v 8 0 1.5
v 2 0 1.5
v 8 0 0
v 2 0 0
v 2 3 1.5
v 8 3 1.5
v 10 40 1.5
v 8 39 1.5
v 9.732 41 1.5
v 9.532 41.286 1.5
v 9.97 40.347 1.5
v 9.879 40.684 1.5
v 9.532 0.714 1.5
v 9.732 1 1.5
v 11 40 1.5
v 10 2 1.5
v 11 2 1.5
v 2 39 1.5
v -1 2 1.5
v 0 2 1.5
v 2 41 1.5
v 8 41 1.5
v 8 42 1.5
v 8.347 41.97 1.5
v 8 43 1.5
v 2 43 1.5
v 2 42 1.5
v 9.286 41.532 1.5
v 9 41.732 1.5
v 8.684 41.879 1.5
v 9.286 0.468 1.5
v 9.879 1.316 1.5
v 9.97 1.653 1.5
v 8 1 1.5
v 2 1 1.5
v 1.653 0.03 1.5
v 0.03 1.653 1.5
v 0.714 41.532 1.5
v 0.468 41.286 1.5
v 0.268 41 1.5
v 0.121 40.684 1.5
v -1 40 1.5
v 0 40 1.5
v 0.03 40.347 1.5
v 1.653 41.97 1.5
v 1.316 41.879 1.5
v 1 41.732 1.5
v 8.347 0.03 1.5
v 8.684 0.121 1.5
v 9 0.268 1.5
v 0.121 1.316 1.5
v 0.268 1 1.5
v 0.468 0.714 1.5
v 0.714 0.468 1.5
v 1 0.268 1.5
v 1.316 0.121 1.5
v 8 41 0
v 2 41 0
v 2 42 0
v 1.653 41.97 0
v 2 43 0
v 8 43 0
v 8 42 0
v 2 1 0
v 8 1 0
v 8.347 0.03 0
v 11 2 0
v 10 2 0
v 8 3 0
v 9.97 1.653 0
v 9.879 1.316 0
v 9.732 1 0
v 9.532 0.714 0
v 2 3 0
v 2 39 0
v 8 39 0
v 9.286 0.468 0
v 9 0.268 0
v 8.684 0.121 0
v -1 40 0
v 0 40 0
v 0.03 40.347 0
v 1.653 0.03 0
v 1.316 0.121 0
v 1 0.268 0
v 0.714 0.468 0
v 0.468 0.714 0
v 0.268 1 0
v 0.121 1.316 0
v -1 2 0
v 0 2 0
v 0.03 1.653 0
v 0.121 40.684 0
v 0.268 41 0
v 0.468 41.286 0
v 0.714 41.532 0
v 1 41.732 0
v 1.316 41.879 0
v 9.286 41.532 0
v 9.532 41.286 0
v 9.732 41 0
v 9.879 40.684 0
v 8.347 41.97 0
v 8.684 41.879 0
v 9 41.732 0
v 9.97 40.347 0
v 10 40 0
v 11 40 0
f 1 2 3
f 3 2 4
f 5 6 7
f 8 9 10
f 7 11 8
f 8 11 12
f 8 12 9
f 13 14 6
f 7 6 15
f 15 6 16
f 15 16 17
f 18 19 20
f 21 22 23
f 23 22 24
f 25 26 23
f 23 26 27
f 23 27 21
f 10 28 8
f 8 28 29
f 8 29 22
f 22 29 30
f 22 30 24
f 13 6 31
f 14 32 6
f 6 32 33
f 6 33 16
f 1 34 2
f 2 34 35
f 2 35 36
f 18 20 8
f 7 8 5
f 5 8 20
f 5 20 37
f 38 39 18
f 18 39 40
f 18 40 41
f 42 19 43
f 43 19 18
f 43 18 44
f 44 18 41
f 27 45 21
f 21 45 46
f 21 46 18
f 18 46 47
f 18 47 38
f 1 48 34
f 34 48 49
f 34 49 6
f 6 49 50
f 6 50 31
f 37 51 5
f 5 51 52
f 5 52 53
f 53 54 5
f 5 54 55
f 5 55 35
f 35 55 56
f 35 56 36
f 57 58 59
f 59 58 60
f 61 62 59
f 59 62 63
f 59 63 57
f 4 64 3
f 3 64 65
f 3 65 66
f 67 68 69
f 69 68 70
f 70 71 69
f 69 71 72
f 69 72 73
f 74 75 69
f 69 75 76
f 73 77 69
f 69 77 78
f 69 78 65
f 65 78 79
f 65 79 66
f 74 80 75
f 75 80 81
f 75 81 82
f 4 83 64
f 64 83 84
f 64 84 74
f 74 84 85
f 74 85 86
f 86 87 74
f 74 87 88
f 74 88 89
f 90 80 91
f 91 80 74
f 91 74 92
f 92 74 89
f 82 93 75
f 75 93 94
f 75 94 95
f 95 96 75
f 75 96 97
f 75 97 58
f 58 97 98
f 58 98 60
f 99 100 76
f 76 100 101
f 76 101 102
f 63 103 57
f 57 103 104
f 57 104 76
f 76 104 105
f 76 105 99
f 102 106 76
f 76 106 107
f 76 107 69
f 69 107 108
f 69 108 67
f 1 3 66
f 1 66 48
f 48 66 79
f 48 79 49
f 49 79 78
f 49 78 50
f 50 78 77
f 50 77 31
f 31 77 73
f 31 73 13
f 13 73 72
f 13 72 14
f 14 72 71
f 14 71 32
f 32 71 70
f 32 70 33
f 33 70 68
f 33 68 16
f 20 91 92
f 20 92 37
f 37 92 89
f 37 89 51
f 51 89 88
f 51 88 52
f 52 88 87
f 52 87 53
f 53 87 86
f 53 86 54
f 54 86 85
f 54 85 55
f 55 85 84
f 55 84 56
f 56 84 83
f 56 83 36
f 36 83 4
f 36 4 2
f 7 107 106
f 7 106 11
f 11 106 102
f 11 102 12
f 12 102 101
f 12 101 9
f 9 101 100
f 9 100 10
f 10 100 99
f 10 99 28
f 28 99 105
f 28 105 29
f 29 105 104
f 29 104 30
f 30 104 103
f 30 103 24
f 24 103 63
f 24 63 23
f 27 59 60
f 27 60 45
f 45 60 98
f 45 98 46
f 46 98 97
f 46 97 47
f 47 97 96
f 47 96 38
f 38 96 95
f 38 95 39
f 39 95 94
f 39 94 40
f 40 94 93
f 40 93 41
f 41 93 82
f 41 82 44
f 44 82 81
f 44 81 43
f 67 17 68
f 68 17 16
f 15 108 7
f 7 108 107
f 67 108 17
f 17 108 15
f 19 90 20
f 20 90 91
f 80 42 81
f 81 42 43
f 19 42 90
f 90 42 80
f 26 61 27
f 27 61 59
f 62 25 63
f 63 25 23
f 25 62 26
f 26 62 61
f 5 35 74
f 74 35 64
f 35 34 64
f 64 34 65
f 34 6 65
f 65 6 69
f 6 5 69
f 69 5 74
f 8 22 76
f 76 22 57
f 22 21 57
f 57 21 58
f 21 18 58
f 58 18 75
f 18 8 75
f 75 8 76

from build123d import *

# Parameters (mm, degrees)
SZKIC1_W                    = 10
SZKIC1_H                    = 42
DODANIE_WYCI_GNI_CIE1_DEPTH = 1.5
ZAOKR_GLENIE1_R             = 2
SZKIC2_W                    = 1.5
SZKIC2_H                    = 38
DODANIE_WYCI_GNI_CIE2_DEPTH = 1
SZKIC3_W                    = 1.5
SZKIC3_H                    = 38
DODANIE_WYCI_GNI_CIE3_DEPTH = 1
SZKIC4_W                    = 6
SZKIC4_H                    = 1.5
DODANIE_WYCI_GNI_CIE4_DEPTH = 1
SZKIC5_W                    = 6
SZKIC5_H                    = 2
WYTNIJ_WYCI_GNI_CIE2_DEPTH  = 2.5


with BuildPart() as part:
    # Szkic1 → Dodanie-wyciągnięcie1 (new body)
    with BuildSketch(Plane.XY):
        with Locations((5, 21)):
            Rectangle(SZKIC1_W, SZKIC1_H)
    extrude(amount=DODANIE_WYCI_GNI_CIE1_DEPTH)

    # Zaokrąglenie1
    zaokr_glenie1_edges = [part.edges().sort_by_distance(p)[0] for p in [
        (0, 42, 0.75),
        (10, 42, 0.75),
        (10, 0, 0.75),
        (0, 0, 0.75),
    ]]
    fillet(zaokr_glenie1_edges, radius=ZAOKR_GLENIE1_R)

    # Szkic2 → Dodanie-wyciągnięcie2 (add)
    with BuildSketch(Plane(origin=(10, 0, 0), x_dir=(0, 0, -1), z_dir=(1, 0, 0))):
        with Locations((-0.75, 21)):
            Rectangle(SZKIC2_W, SZKIC2_H)
    extrude(amount=DODANIE_WYCI_GNI_CIE2_DEPTH)

    # Szkic3 → Dodanie-wyciągnięcie3 (add)
    with BuildSketch(Plane.ZY):
        with Locations((0.75, 21)):
            Rectangle(SZKIC3_W, SZKIC3_H)
    extrude(amount=DODANIE_WYCI_GNI_CIE3_DEPTH)

    # Szkic4 → Dodanie-wyciągnięcie4 (add)
    with BuildSketch(Plane(origin=(0, 42, 0), x_dir=(1, 0, 0), z_dir=(0, 1, 0))):
        with Locations((5, -0.75)):
            Rectangle(SZKIC4_W, SZKIC4_H)
    extrude(amount=DODANIE_WYCI_GNI_CIE4_DEPTH)

    # Szkic5 → Wytnij-wyciągnięcie2 (cut, through all)
    with BuildSketch(Plane(origin=(0, 0, 0), x_dir=(-1, 0, 0), z_dir=(0, 0, -1))):
        with Locations((-5, 40)):
            Rectangle(SZKIC5_W, SZKIC5_H)
        with Locations((-5, 2)):
            Rectangle(SZKIC5_W, SZKIC5_H)
    extrude(amount=-WYTNIJ_WYCI_GNI_CIE2_DEPTH, mode=Mode.SUBTRACT)


solid = part.part
